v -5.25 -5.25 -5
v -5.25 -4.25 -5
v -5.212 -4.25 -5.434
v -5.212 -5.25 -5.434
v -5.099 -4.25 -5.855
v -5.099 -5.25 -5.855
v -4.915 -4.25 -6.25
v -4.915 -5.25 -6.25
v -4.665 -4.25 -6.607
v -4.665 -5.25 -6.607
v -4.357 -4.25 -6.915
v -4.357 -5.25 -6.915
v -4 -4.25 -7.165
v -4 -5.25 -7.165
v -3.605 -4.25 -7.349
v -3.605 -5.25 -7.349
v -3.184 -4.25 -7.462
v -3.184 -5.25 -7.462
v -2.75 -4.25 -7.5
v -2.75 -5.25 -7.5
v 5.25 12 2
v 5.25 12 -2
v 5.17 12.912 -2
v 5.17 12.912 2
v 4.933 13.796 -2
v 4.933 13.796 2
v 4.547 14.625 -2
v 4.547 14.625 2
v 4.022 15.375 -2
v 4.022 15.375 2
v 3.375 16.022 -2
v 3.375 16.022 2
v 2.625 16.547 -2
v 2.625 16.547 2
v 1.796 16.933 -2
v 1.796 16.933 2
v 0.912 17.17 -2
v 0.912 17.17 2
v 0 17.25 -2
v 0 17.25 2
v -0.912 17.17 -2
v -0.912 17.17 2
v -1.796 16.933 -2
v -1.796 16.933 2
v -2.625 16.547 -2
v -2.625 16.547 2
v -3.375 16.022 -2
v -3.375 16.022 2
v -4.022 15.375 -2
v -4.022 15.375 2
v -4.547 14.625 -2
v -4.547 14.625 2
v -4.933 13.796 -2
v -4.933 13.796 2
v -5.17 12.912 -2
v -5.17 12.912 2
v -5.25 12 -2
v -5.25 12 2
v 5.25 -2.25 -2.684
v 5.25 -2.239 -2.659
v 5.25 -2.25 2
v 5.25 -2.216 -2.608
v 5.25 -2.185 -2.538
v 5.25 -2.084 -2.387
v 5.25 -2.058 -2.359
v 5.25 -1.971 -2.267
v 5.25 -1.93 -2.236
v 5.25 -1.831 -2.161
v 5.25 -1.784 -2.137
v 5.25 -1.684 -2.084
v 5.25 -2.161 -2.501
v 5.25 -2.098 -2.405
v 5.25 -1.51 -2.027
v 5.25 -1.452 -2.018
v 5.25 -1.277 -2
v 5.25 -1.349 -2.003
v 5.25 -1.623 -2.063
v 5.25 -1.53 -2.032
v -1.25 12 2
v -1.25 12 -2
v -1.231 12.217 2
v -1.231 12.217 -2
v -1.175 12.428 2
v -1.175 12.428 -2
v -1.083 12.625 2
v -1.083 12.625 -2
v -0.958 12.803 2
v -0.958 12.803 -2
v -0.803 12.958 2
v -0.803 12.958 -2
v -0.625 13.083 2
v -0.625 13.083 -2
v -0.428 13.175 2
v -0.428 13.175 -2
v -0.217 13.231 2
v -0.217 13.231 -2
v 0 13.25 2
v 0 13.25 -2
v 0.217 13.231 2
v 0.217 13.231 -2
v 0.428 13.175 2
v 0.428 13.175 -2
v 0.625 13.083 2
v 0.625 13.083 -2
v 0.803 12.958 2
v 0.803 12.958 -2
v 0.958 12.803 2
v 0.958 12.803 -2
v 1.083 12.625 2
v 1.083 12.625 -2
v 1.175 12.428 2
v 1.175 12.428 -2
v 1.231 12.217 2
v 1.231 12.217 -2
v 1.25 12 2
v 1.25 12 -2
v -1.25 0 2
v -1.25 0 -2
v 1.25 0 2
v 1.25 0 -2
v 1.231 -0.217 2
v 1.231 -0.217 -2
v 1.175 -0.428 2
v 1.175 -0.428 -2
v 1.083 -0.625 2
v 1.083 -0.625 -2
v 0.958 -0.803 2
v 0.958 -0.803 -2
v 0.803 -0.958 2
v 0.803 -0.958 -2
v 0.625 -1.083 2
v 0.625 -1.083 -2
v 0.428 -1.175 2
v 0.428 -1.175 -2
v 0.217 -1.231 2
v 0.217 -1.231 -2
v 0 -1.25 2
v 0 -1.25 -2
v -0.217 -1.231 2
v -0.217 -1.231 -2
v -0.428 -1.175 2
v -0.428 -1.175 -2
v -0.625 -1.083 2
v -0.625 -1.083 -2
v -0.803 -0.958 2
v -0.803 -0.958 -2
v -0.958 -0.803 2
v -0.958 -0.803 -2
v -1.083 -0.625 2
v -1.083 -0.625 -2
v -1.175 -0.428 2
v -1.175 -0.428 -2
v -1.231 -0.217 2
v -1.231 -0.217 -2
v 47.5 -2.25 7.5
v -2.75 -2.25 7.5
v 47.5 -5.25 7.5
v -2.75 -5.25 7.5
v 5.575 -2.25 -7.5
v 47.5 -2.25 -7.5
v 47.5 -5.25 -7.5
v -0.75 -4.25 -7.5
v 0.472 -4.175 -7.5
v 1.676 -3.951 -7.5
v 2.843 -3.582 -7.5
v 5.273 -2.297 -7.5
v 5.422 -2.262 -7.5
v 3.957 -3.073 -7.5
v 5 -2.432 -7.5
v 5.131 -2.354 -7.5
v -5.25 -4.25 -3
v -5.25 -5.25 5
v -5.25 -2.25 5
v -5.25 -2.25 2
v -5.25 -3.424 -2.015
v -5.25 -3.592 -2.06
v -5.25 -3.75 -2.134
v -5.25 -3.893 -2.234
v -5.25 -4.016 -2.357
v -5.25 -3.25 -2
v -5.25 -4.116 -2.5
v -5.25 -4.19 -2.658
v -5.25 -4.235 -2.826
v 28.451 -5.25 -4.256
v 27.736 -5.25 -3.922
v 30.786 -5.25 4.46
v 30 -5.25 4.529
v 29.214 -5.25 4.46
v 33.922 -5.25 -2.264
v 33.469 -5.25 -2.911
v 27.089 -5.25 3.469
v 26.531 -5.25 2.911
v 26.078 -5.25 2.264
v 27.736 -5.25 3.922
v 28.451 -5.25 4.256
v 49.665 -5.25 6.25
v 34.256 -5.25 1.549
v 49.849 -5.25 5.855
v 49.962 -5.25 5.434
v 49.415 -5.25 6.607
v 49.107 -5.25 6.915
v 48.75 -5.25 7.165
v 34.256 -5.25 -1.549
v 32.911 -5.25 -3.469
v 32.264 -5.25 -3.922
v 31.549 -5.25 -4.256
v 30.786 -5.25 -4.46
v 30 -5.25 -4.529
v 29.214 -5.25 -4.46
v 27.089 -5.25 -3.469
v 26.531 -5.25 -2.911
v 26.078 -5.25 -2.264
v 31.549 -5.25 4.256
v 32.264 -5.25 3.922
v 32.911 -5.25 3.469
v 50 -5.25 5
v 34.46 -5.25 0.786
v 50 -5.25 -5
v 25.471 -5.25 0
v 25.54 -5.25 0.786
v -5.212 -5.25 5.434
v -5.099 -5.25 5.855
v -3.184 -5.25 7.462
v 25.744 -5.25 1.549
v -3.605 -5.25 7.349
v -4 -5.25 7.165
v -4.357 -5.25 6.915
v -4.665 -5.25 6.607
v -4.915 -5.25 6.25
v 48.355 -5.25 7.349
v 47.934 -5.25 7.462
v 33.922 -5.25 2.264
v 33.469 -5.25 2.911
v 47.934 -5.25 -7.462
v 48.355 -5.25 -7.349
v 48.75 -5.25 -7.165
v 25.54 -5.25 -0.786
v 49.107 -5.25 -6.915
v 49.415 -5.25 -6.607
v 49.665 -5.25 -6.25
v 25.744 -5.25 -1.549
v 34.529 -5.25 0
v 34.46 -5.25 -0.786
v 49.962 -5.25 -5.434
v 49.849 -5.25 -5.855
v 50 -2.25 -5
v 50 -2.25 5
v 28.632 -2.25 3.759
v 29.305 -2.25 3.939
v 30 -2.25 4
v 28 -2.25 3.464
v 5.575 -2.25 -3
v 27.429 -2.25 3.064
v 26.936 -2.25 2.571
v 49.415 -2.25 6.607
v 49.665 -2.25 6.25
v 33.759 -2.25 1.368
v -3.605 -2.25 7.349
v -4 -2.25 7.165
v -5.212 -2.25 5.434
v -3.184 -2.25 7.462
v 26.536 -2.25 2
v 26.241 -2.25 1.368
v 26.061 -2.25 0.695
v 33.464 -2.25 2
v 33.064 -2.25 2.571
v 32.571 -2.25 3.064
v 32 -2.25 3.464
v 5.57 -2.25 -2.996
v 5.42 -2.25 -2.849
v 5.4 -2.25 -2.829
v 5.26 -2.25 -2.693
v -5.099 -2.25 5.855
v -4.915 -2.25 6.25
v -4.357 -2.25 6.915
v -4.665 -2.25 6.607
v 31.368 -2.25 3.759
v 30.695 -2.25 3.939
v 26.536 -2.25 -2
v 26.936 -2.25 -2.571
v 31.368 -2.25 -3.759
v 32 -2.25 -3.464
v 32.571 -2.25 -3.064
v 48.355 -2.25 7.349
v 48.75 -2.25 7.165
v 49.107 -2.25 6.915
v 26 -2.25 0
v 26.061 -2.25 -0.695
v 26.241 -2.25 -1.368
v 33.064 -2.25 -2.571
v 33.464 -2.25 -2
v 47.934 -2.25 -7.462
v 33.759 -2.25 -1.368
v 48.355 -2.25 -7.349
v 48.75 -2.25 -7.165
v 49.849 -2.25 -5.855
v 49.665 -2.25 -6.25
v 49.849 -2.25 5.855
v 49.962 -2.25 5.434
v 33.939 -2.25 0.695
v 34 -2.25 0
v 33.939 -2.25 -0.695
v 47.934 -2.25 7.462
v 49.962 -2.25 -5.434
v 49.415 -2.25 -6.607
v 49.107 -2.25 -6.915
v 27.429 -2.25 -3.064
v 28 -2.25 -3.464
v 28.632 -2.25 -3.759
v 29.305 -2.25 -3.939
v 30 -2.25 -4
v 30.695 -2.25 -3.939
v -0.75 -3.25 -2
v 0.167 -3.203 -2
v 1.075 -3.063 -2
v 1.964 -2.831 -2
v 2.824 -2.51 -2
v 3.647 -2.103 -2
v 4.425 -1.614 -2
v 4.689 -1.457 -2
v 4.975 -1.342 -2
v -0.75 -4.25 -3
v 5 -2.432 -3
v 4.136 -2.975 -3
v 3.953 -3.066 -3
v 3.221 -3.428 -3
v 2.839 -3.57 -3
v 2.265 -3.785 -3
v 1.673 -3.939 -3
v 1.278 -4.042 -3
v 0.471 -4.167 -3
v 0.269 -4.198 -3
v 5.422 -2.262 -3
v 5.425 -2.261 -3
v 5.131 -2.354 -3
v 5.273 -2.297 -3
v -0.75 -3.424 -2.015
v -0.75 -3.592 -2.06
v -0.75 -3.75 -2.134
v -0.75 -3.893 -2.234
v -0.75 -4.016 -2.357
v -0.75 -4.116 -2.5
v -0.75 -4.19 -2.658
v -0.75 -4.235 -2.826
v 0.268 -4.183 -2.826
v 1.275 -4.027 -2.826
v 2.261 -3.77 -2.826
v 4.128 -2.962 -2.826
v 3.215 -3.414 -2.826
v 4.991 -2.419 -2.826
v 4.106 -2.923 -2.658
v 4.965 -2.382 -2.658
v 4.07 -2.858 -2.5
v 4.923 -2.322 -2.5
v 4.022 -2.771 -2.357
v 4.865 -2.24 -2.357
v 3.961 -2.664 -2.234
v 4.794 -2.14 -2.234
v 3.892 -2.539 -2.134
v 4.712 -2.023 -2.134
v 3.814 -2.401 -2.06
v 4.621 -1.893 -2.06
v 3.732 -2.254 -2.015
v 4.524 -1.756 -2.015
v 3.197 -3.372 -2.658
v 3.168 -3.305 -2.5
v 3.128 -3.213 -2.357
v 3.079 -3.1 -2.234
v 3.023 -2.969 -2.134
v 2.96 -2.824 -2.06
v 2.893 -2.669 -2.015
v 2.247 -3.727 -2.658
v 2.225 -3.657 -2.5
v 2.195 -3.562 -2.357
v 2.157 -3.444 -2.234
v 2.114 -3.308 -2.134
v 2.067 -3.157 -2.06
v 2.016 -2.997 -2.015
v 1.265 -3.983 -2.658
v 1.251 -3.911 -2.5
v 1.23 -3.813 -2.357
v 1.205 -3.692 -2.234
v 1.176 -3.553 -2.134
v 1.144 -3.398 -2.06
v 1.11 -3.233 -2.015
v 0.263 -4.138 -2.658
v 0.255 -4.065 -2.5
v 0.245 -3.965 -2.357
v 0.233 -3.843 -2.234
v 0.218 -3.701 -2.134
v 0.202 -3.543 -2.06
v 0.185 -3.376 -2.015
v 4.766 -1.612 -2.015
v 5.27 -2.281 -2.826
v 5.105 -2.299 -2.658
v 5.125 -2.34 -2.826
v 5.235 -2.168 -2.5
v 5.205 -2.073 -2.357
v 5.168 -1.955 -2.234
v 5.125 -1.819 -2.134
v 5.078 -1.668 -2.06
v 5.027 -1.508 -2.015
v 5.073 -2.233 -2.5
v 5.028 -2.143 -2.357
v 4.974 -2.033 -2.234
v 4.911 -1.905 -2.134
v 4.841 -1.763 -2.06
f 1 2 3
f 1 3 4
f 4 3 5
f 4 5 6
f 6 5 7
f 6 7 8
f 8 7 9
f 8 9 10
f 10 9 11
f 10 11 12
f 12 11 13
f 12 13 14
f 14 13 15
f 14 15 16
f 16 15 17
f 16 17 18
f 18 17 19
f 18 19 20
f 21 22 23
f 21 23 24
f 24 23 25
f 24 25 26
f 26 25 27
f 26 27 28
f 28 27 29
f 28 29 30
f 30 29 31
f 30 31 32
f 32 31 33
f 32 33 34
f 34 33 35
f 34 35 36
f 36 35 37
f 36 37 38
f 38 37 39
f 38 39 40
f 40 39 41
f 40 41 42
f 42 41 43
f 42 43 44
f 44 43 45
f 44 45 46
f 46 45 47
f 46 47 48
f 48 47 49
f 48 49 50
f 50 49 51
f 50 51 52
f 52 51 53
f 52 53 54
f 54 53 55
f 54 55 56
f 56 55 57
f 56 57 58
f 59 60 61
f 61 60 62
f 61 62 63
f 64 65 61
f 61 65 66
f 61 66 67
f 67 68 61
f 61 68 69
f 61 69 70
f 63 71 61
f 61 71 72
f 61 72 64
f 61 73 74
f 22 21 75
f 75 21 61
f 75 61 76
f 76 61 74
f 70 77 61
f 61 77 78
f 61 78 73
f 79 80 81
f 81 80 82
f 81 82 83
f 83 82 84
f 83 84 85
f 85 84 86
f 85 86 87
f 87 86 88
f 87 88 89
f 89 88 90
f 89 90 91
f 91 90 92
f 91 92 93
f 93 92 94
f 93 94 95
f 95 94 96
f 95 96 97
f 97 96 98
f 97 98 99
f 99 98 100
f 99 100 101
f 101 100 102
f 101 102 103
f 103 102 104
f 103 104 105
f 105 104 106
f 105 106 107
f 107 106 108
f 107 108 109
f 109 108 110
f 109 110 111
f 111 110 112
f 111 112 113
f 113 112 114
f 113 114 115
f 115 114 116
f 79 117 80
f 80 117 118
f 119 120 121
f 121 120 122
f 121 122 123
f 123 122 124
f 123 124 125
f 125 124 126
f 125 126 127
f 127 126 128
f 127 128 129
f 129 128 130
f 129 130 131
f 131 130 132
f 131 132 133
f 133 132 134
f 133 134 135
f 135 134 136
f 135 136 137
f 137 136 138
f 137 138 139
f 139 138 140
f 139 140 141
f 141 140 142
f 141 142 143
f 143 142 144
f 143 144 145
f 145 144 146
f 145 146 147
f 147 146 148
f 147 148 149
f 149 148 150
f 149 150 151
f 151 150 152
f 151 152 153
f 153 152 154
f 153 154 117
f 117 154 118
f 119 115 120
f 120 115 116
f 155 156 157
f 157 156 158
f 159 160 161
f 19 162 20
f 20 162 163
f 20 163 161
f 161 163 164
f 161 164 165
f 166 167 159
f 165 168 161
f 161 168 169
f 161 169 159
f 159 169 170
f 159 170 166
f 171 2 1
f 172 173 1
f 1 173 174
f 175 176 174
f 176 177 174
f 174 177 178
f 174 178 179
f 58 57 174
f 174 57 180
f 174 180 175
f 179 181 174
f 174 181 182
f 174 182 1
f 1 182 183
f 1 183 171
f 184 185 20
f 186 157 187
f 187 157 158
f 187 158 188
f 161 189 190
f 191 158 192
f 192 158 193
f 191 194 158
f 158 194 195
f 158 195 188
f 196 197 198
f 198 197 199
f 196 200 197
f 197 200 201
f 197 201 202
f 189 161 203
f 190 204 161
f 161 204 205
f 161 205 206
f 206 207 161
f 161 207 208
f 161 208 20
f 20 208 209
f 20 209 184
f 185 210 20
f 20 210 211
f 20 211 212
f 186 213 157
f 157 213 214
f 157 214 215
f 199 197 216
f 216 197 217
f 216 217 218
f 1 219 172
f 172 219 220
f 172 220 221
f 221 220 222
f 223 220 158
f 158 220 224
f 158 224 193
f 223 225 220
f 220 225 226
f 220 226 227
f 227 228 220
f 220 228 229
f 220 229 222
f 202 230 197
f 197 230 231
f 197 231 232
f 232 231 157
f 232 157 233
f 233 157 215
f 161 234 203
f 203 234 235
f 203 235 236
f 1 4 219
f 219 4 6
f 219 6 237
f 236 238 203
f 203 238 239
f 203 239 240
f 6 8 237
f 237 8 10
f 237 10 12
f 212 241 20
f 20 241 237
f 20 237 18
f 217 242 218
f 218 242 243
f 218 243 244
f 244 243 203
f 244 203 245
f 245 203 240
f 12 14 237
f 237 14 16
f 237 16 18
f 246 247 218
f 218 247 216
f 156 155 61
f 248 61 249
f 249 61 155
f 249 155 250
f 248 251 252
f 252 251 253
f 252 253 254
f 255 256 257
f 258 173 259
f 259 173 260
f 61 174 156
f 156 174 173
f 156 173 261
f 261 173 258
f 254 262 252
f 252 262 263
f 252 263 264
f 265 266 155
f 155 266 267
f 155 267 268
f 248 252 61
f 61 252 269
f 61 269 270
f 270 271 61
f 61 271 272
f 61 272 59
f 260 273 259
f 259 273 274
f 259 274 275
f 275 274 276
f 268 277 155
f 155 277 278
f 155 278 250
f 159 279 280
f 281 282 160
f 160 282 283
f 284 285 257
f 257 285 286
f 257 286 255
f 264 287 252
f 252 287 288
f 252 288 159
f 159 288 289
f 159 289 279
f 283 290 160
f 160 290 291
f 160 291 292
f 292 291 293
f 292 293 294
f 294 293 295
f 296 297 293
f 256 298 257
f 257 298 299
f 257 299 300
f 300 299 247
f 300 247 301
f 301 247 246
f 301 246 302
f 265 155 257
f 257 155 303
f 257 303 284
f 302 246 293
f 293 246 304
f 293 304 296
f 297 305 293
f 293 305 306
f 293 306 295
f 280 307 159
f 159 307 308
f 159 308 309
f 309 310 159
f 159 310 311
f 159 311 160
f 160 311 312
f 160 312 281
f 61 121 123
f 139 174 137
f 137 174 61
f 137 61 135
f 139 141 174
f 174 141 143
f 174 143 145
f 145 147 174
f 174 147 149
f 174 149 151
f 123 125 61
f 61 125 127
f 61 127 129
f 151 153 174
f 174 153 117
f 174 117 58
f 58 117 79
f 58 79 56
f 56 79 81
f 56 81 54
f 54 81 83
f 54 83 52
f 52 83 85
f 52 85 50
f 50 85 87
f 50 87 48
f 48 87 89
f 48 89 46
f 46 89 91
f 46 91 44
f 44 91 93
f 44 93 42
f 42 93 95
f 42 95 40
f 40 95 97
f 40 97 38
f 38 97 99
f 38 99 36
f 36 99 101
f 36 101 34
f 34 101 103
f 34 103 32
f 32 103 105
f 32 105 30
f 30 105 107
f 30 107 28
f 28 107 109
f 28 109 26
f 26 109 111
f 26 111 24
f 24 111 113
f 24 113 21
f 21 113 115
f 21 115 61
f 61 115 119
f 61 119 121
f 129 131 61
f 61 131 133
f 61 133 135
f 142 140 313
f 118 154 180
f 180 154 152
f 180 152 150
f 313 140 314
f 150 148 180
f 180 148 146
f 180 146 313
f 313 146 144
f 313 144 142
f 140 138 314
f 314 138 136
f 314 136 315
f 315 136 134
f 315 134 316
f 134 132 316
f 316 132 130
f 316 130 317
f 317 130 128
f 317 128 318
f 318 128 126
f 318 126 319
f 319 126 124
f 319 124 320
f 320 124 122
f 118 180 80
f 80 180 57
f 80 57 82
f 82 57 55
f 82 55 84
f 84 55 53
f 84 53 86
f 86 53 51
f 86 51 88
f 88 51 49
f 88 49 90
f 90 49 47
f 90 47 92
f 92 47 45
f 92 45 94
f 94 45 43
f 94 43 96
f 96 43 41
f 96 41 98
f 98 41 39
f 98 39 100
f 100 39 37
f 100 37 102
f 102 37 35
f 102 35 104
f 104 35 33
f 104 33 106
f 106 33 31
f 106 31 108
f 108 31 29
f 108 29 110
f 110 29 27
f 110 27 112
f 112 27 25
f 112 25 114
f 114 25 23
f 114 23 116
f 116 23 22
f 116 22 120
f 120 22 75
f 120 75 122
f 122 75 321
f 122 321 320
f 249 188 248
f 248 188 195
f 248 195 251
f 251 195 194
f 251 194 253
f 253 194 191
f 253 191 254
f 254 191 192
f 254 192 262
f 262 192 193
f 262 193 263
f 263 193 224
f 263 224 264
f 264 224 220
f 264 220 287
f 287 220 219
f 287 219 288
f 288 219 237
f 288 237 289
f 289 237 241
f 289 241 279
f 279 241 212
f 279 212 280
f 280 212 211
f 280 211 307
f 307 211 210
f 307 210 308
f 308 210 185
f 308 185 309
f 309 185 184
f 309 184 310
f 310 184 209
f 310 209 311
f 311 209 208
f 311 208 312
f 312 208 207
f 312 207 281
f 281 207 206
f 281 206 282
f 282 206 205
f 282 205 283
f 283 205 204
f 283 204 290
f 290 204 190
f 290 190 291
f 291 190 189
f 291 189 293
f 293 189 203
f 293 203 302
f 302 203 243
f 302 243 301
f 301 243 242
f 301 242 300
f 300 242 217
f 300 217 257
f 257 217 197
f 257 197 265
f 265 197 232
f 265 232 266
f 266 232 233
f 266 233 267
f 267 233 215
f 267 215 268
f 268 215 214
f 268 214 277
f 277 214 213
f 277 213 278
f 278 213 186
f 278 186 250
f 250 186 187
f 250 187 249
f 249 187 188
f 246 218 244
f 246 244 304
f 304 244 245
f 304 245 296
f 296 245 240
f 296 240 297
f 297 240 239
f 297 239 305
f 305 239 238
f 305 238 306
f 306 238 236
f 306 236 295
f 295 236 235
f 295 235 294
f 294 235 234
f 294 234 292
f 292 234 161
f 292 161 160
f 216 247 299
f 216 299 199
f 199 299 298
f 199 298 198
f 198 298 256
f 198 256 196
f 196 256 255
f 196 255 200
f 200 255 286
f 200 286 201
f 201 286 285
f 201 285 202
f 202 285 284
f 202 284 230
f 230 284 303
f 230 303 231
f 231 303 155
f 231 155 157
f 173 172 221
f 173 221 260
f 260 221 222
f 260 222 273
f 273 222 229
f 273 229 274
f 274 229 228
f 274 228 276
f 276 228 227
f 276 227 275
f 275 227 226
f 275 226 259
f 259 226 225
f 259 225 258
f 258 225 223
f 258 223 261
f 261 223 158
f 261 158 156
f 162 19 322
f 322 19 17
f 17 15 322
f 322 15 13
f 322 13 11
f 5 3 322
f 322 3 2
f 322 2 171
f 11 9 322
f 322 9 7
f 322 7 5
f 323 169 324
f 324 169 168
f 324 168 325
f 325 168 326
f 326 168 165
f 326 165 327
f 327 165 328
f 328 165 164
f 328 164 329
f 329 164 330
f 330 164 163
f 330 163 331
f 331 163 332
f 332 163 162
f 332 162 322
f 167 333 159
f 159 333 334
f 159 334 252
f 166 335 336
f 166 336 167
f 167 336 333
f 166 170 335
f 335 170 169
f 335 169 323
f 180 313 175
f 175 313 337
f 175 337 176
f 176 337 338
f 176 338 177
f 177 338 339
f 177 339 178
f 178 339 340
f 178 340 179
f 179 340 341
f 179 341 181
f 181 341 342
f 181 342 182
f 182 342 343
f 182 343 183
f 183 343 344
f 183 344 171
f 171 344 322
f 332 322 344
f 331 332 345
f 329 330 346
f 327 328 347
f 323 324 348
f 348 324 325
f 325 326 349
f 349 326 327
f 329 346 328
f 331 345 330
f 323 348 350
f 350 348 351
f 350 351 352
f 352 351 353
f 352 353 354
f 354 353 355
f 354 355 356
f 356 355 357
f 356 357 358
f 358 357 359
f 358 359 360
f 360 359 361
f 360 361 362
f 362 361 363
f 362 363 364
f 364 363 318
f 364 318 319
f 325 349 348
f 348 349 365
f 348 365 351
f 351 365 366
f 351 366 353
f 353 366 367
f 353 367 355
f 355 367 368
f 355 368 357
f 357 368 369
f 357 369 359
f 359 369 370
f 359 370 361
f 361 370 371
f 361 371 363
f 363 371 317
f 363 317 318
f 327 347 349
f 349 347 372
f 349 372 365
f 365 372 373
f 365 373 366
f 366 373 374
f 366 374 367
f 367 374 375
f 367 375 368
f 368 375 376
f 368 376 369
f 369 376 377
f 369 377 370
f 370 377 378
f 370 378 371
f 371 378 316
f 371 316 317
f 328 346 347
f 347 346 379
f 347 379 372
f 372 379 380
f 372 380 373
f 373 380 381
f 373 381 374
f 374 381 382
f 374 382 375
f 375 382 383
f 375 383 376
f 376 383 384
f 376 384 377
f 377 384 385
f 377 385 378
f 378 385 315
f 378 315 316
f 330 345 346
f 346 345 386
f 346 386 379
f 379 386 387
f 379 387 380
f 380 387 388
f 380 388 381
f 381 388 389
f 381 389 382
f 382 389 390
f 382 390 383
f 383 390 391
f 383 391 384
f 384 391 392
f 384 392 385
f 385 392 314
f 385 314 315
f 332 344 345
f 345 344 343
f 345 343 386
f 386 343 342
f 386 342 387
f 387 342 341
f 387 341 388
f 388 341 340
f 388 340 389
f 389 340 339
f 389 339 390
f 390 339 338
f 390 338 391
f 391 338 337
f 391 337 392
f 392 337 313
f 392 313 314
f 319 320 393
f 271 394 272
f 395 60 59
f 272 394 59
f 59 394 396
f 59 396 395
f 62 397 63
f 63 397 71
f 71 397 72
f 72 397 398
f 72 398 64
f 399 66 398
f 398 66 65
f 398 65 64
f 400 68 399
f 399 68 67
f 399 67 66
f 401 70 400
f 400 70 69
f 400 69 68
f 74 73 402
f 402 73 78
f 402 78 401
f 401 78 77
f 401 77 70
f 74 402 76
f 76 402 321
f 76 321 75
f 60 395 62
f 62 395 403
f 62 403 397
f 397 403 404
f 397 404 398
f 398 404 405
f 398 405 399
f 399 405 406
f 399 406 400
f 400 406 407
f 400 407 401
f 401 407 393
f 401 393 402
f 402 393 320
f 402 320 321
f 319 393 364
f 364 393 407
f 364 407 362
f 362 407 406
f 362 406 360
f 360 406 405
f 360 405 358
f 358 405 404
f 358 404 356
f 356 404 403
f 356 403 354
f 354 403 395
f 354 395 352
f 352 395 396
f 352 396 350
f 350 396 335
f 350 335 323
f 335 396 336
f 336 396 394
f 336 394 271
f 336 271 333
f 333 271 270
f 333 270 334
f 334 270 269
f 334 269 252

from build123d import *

# Parameters (mm, degrees)
BOSS_EXTRUDE1_DEPTH = 7.5
CUT_EXTRUDE1_DEPTH  = 5.5
CUT_EXTRUDE2_START  = -9.5
CUT_EXTRUDE2_DEPTH  = 5.5
SKETCH3_R           = 4.000000000000006
CUT_EXTRUDE3_DEPTH  = 55.1894823743501
CUT_EXTRUDE3_DRAFT  = 10.000000000000002
FILLET1_R           = 2.5
CUT_EXTRUDE4_START  = -2
CUT_EXTRUDE4_DEPTH  = 2
FILLET2_R           = 10
FILLET5_R           = 1
FILLET3_R           = 1


with BuildPart() as part:
    # Sketch1 → Boss-Extrude1 (new, symmetric)
    with BuildSketch(Plane.XY):
        with BuildLine():
            Line((-5.249999999999999, 12), (-5.249999999999999, -5.25))
            Line((-5.249999999999999, -5.25), (50, -5.25))
            Line((50, -5.25), (50, -2.2500000000000004))
            Line((50, -2.2500000000000004), (5.250000000000001, -2.2500000000000004))
            Line((5.250000000000001, -2.2500000000000004), (5.249999999999999, 12))
            ThreePointArc((5.249999999999999, 12), (3.2e-16, 17.25), (-5.249999999999999, 12))
        make_face()
        with BuildLine():
            Line((1.2499999999999998, 12), (1.2500000000000002, 0))
            ThreePointArc((1.2500000000000002, 0), (-2.3e-16, -1.2500000000000002), (-1.2500000000000002, 0))
            Line((-1.2500000000000002, 0), (-1.2499999999999998, 12))
            ThreePointArc((-1.2499999999999998, 12), (8e-17, 13.25), (1.2499999999999998, 12))
        make_face(mode=Mode.SUBTRACT)
    extrude(amount=BOSS_EXTRUDE1_DEPTH, both=True)

    # Sketch2 → Cut-Extrude1 (cut)
    with BuildSketch(Plane.XY.offset(7.5)):
        with BuildLine():
            Line((-5.249999999999999, 12), (-5.249999999999996, -2.2500000000000018))
            Line((-5.249999999999996, -2.2500000000000018), (5.250000000000001, -2.2500000000000004))
            Line((5.250000000000001, -2.2500000000000004), (5.249999999999999, 12))
            ThreePointArc((5.249999999999999, 12), (3.2e-16, 17.25), (-5.249999999999999, 12))
        make_face()
    extrude(amount=-CUT_EXTRUDE1_DEPTH, mode=Mode.SUBTRACT)

    # Sketch2<2> → Cut-Extrude2 (cut)
    with BuildSketch(Plane.XY.offset(7.5).offset(CUT_EXTRUDE2_START)):
        with BuildLine():
            Line((-5.249999999999999, 12), (-5.249999999999996, -2.2500000000000018))
            Line((-5.249999999999996, -2.2500000000000018), (5.250000000000001, -2.2500000000000004))
            Line((5.250000000000001, -2.2500000000000004), (5.249999999999999, 12))
            ThreePointArc((5.249999999999999, 12), (3.2e-16, 17.25), (-5.249999999999999, 12))
        make_face()
    extrude(amount=-CUT_EXTRUDE2_DEPTH, mode=Mode.SUBTRACT)


with BuildPart() as cut_extrude3_tool:
    # Sketch3 → Cut-Extrude3 (with draft: the straight prism first)
    with BuildSketch(Plane(origin=(0, -2.2500000000000004, 0), x_dir=(1, 0, 0), z_dir=(0, 1, 0))):
        with Locations((30, 0)):
            Circle(SKETCH3_R)
    extrude(amount=-CUT_EXTRUDE3_DEPTH)
    # Cut-Extrude3: the draft: its side faces are tilted about the plane it starts from
    cut_extrude3_sides = [cut_extrude3_tool.faces().sort_by_distance(p)[0] for p in [
        (26, -29.844741187, 0),
    ]]
    draft(cut_extrude3_sides, Plane(origin=(0, -2.2500000000000004, 0), x_dir=(1, 0, 0), z_dir=(0, 1, 0)), CUT_EXTRUDE3_DRAFT)


with BuildPart() as part_1:
    add(part.part)

    # Cut-Extrude3: cut by cut_extrude3_tool
    add(cut_extrude3_tool.part, mode=Mode.SUBTRACT)

    # Fillet1
    fillet1_edges = [part_1.edges().sort_by_distance(p)[0] for p in [
        (50, -3.75, 7.5),
        (-5.249999999999999, -3.75, 7.5),
        (-5.249999999999999, -3.75, -7.5),
        (50, -3.75, -7.5),
    ]]
    fillet(fillet1_edges, radius=FILLET1_R)

    # Sketch4 → Cut-Extrude4 (cut)
    with BuildSketch(Plane(origin=(0, -2.2500000000000004, 0), x_dir=(1, 0, 0), z_dir=(0, 1, 0)).offset(CUT_EXTRUDE4_START)):
        with BuildLine():
            Line((5.250000000000001, 2.0000000000000018), (-5.249999999999996, 2.0000000000000018))
            Line((-5.249999999999996, 2.0000000000000018), (-5.249999999999996, 4.999999999999997))
            ThreePointArc((-5.249999999999996, 4.999999999999997), (-4.517766952966367, 6.767766952966371), (-2.7499999999999956, 7.5))
            Line((-2.7499999999999956, 7.5), (5.250000000000003, 7.5))
            Line((5.250000000000003, 7.5), (5.250000000000001, 2.0000000000000018))
        make_face()
    extrude(amount=CUT_EXTRUDE4_DEPTH, mode=Mode.SUBTRACT)

    # Fillet2
    # the kernel refuses this fillet: 10 mm, written as the material it adds along each edge
    with BuildSketch(Plane(origin=(5.250000000000003, -4.25, -7.5), x_dir=(-1.168e-13, 1, 0), z_dir=(-3.2e-16, 0, 1))) as fillet2_piece_1_section:
        with BuildLine():
            CenterArc((10.0000000000007, 5.99999999999948), FILLET2_R, 179.99999999999332, 36.869897645847004)
            Line((7.0077e-13, 6.000000000000648), (0, 0))
            Line((0, 0), (2.0000000000003118, 0))
        make_face()
    fillet2_piece_1 = extrude(amount=20.500000000001616, mode=Mode.PRIVATE)
    fillet2_piece_1 = split(fillet2_piece_1, bisect_by=Plane(origin=(2.41860221548833, -3.7558066464660698, 2), z_dir=(0, 0, -1)), keep=Keep.TOP, mode=Mode.PRIVATE)
    add(fillet2_piece_1)

    # Fillet5
    fillet5_edges = [part_1.edges().sort_by_distance(p)[0] for p in [
        (5.250000000000002, -2.2500000000000004, -4.750000000000001),
    ]]
    fillet(fillet5_edges, radius=FILLET5_R)

    # Fillet3
    # the kernel refuses this fillet: 1 mm, written as the material it adds along each edge
    with BuildSketch(Plane(origin=(-0.7499999999989999, 5.750000000001, -2.0000000000000018), x_dir=(0.5749595745759393, -0.8181818181819093, 0), z_dir=(0.8181818181819093, 0.5749595745759393, 0))) as fillet3_piece_1:
        with BuildLine():
            CenterArc((10 - FILLET3_R, FILLET3_R), FILLET3_R, 270, 90)
            Line((10 - FILLET3_R, 0), (10, 0))
            Line((10, 0), (10, FILLET3_R))
        make_face()
    revolve(axis=Axis((-0.7499999999989999, 5.750000000001, -2.0000000000000018), (0, 0, -1)), revolution_arc=35.0968012275825)
    with BuildSketch(Plane(origin=(-0.7500000000006111, -4.25, -2.0000000000000018), x_dir=(0, 0, -1), z_dir=(-1, 0, 0))) as fillet3_piece_2:
        with BuildLine():
            CenterArc((FILLET3_R, -FILLET3_R), FILLET3_R, 90, 90)
            Line((0, -FILLET3_R), (0, 0))
            Line((0, 0), (FILLET3_R, 0))
        make_face()
    extrude(amount=4.4999999999993845)
    with BuildSketch(Plane(origin=(5.574555320336334, -3.250000000000001, -2.0000000000000018), x_dir=(-0.5749595745759413, 0.818181818181908, 0), z_dir=(-0.818181818181908, -0.5749595745759413, 0))) as fillet3_piece_3_section:
        with BuildLine():
            CenterArc((1.0000000000000002 + FILLET3_R, FILLET3_R), FILLET3_R, 180, 90)
            Line((1.0000000000000002 + FILLET3_R, 0), (1.0000000000000002, 0))
            Line((1.0000000000000002, 0), (1.0000000000000002, FILLET3_R))
        make_face()
    fillet3_piece_3 = revolve(axis=Axis((5.574555320336334, -3.250000000000001, -2.0000000000000018), (0, 0, -1)), revolution_arc=178.34499823253051, mode=Mode.PRIVATE)
    fillet3_piece_3 = split(fillet3_piece_3, bisect_by=Plane(origin=(5.250000000000001, -2.3158219875897332, -2.423725348187279), z_dir=(-1, -1.2e-16, 0)), keep=Keep.TOP, mode=Mode.PRIVATE)
    add(fillet3_piece_3)
    with BuildSketch(Plane(origin=(5.574555320336334, -3.250000000000001, -2.0000000000000018), x_dir=(-0.5749595745759413, 0.818181818181908, 0), z_dir=(-0.818181818181908, -0.5749595745759413, 0))) as fillet3_piece_4_section:
        with BuildLine():
            CenterArc((1.0000000000000002 + FILLET3_R, FILLET3_R), FILLET3_R, 180, 90)
            Line((1.0000000000000002 + FILLET3_R, 0), (1.0000000000000002, 0))
            Line((1.0000000000000002, 0), (1.0000000000000002, FILLET3_R))
        make_face()
    fillet3_piece_4 = revolve(axis=Axis((5.574555320336334, -3.250000000000001, -2.0000000000000018), (0, 0, -1)), revolution_arc=178.34499823253051, mode=Mode.PRIVATE)
    fillet3_piece_4 = split(fillet3_piece_4, bisect_by=Plane(origin=(5.333721819231152, -2.2500000000000004, -2.422839116405143), z_dir=(1.3e-16, -1, 0)), keep=Keep.TOP, mode=Mode.PRIVATE)
    add(fillet3_piece_4)


solid = part_1.part
